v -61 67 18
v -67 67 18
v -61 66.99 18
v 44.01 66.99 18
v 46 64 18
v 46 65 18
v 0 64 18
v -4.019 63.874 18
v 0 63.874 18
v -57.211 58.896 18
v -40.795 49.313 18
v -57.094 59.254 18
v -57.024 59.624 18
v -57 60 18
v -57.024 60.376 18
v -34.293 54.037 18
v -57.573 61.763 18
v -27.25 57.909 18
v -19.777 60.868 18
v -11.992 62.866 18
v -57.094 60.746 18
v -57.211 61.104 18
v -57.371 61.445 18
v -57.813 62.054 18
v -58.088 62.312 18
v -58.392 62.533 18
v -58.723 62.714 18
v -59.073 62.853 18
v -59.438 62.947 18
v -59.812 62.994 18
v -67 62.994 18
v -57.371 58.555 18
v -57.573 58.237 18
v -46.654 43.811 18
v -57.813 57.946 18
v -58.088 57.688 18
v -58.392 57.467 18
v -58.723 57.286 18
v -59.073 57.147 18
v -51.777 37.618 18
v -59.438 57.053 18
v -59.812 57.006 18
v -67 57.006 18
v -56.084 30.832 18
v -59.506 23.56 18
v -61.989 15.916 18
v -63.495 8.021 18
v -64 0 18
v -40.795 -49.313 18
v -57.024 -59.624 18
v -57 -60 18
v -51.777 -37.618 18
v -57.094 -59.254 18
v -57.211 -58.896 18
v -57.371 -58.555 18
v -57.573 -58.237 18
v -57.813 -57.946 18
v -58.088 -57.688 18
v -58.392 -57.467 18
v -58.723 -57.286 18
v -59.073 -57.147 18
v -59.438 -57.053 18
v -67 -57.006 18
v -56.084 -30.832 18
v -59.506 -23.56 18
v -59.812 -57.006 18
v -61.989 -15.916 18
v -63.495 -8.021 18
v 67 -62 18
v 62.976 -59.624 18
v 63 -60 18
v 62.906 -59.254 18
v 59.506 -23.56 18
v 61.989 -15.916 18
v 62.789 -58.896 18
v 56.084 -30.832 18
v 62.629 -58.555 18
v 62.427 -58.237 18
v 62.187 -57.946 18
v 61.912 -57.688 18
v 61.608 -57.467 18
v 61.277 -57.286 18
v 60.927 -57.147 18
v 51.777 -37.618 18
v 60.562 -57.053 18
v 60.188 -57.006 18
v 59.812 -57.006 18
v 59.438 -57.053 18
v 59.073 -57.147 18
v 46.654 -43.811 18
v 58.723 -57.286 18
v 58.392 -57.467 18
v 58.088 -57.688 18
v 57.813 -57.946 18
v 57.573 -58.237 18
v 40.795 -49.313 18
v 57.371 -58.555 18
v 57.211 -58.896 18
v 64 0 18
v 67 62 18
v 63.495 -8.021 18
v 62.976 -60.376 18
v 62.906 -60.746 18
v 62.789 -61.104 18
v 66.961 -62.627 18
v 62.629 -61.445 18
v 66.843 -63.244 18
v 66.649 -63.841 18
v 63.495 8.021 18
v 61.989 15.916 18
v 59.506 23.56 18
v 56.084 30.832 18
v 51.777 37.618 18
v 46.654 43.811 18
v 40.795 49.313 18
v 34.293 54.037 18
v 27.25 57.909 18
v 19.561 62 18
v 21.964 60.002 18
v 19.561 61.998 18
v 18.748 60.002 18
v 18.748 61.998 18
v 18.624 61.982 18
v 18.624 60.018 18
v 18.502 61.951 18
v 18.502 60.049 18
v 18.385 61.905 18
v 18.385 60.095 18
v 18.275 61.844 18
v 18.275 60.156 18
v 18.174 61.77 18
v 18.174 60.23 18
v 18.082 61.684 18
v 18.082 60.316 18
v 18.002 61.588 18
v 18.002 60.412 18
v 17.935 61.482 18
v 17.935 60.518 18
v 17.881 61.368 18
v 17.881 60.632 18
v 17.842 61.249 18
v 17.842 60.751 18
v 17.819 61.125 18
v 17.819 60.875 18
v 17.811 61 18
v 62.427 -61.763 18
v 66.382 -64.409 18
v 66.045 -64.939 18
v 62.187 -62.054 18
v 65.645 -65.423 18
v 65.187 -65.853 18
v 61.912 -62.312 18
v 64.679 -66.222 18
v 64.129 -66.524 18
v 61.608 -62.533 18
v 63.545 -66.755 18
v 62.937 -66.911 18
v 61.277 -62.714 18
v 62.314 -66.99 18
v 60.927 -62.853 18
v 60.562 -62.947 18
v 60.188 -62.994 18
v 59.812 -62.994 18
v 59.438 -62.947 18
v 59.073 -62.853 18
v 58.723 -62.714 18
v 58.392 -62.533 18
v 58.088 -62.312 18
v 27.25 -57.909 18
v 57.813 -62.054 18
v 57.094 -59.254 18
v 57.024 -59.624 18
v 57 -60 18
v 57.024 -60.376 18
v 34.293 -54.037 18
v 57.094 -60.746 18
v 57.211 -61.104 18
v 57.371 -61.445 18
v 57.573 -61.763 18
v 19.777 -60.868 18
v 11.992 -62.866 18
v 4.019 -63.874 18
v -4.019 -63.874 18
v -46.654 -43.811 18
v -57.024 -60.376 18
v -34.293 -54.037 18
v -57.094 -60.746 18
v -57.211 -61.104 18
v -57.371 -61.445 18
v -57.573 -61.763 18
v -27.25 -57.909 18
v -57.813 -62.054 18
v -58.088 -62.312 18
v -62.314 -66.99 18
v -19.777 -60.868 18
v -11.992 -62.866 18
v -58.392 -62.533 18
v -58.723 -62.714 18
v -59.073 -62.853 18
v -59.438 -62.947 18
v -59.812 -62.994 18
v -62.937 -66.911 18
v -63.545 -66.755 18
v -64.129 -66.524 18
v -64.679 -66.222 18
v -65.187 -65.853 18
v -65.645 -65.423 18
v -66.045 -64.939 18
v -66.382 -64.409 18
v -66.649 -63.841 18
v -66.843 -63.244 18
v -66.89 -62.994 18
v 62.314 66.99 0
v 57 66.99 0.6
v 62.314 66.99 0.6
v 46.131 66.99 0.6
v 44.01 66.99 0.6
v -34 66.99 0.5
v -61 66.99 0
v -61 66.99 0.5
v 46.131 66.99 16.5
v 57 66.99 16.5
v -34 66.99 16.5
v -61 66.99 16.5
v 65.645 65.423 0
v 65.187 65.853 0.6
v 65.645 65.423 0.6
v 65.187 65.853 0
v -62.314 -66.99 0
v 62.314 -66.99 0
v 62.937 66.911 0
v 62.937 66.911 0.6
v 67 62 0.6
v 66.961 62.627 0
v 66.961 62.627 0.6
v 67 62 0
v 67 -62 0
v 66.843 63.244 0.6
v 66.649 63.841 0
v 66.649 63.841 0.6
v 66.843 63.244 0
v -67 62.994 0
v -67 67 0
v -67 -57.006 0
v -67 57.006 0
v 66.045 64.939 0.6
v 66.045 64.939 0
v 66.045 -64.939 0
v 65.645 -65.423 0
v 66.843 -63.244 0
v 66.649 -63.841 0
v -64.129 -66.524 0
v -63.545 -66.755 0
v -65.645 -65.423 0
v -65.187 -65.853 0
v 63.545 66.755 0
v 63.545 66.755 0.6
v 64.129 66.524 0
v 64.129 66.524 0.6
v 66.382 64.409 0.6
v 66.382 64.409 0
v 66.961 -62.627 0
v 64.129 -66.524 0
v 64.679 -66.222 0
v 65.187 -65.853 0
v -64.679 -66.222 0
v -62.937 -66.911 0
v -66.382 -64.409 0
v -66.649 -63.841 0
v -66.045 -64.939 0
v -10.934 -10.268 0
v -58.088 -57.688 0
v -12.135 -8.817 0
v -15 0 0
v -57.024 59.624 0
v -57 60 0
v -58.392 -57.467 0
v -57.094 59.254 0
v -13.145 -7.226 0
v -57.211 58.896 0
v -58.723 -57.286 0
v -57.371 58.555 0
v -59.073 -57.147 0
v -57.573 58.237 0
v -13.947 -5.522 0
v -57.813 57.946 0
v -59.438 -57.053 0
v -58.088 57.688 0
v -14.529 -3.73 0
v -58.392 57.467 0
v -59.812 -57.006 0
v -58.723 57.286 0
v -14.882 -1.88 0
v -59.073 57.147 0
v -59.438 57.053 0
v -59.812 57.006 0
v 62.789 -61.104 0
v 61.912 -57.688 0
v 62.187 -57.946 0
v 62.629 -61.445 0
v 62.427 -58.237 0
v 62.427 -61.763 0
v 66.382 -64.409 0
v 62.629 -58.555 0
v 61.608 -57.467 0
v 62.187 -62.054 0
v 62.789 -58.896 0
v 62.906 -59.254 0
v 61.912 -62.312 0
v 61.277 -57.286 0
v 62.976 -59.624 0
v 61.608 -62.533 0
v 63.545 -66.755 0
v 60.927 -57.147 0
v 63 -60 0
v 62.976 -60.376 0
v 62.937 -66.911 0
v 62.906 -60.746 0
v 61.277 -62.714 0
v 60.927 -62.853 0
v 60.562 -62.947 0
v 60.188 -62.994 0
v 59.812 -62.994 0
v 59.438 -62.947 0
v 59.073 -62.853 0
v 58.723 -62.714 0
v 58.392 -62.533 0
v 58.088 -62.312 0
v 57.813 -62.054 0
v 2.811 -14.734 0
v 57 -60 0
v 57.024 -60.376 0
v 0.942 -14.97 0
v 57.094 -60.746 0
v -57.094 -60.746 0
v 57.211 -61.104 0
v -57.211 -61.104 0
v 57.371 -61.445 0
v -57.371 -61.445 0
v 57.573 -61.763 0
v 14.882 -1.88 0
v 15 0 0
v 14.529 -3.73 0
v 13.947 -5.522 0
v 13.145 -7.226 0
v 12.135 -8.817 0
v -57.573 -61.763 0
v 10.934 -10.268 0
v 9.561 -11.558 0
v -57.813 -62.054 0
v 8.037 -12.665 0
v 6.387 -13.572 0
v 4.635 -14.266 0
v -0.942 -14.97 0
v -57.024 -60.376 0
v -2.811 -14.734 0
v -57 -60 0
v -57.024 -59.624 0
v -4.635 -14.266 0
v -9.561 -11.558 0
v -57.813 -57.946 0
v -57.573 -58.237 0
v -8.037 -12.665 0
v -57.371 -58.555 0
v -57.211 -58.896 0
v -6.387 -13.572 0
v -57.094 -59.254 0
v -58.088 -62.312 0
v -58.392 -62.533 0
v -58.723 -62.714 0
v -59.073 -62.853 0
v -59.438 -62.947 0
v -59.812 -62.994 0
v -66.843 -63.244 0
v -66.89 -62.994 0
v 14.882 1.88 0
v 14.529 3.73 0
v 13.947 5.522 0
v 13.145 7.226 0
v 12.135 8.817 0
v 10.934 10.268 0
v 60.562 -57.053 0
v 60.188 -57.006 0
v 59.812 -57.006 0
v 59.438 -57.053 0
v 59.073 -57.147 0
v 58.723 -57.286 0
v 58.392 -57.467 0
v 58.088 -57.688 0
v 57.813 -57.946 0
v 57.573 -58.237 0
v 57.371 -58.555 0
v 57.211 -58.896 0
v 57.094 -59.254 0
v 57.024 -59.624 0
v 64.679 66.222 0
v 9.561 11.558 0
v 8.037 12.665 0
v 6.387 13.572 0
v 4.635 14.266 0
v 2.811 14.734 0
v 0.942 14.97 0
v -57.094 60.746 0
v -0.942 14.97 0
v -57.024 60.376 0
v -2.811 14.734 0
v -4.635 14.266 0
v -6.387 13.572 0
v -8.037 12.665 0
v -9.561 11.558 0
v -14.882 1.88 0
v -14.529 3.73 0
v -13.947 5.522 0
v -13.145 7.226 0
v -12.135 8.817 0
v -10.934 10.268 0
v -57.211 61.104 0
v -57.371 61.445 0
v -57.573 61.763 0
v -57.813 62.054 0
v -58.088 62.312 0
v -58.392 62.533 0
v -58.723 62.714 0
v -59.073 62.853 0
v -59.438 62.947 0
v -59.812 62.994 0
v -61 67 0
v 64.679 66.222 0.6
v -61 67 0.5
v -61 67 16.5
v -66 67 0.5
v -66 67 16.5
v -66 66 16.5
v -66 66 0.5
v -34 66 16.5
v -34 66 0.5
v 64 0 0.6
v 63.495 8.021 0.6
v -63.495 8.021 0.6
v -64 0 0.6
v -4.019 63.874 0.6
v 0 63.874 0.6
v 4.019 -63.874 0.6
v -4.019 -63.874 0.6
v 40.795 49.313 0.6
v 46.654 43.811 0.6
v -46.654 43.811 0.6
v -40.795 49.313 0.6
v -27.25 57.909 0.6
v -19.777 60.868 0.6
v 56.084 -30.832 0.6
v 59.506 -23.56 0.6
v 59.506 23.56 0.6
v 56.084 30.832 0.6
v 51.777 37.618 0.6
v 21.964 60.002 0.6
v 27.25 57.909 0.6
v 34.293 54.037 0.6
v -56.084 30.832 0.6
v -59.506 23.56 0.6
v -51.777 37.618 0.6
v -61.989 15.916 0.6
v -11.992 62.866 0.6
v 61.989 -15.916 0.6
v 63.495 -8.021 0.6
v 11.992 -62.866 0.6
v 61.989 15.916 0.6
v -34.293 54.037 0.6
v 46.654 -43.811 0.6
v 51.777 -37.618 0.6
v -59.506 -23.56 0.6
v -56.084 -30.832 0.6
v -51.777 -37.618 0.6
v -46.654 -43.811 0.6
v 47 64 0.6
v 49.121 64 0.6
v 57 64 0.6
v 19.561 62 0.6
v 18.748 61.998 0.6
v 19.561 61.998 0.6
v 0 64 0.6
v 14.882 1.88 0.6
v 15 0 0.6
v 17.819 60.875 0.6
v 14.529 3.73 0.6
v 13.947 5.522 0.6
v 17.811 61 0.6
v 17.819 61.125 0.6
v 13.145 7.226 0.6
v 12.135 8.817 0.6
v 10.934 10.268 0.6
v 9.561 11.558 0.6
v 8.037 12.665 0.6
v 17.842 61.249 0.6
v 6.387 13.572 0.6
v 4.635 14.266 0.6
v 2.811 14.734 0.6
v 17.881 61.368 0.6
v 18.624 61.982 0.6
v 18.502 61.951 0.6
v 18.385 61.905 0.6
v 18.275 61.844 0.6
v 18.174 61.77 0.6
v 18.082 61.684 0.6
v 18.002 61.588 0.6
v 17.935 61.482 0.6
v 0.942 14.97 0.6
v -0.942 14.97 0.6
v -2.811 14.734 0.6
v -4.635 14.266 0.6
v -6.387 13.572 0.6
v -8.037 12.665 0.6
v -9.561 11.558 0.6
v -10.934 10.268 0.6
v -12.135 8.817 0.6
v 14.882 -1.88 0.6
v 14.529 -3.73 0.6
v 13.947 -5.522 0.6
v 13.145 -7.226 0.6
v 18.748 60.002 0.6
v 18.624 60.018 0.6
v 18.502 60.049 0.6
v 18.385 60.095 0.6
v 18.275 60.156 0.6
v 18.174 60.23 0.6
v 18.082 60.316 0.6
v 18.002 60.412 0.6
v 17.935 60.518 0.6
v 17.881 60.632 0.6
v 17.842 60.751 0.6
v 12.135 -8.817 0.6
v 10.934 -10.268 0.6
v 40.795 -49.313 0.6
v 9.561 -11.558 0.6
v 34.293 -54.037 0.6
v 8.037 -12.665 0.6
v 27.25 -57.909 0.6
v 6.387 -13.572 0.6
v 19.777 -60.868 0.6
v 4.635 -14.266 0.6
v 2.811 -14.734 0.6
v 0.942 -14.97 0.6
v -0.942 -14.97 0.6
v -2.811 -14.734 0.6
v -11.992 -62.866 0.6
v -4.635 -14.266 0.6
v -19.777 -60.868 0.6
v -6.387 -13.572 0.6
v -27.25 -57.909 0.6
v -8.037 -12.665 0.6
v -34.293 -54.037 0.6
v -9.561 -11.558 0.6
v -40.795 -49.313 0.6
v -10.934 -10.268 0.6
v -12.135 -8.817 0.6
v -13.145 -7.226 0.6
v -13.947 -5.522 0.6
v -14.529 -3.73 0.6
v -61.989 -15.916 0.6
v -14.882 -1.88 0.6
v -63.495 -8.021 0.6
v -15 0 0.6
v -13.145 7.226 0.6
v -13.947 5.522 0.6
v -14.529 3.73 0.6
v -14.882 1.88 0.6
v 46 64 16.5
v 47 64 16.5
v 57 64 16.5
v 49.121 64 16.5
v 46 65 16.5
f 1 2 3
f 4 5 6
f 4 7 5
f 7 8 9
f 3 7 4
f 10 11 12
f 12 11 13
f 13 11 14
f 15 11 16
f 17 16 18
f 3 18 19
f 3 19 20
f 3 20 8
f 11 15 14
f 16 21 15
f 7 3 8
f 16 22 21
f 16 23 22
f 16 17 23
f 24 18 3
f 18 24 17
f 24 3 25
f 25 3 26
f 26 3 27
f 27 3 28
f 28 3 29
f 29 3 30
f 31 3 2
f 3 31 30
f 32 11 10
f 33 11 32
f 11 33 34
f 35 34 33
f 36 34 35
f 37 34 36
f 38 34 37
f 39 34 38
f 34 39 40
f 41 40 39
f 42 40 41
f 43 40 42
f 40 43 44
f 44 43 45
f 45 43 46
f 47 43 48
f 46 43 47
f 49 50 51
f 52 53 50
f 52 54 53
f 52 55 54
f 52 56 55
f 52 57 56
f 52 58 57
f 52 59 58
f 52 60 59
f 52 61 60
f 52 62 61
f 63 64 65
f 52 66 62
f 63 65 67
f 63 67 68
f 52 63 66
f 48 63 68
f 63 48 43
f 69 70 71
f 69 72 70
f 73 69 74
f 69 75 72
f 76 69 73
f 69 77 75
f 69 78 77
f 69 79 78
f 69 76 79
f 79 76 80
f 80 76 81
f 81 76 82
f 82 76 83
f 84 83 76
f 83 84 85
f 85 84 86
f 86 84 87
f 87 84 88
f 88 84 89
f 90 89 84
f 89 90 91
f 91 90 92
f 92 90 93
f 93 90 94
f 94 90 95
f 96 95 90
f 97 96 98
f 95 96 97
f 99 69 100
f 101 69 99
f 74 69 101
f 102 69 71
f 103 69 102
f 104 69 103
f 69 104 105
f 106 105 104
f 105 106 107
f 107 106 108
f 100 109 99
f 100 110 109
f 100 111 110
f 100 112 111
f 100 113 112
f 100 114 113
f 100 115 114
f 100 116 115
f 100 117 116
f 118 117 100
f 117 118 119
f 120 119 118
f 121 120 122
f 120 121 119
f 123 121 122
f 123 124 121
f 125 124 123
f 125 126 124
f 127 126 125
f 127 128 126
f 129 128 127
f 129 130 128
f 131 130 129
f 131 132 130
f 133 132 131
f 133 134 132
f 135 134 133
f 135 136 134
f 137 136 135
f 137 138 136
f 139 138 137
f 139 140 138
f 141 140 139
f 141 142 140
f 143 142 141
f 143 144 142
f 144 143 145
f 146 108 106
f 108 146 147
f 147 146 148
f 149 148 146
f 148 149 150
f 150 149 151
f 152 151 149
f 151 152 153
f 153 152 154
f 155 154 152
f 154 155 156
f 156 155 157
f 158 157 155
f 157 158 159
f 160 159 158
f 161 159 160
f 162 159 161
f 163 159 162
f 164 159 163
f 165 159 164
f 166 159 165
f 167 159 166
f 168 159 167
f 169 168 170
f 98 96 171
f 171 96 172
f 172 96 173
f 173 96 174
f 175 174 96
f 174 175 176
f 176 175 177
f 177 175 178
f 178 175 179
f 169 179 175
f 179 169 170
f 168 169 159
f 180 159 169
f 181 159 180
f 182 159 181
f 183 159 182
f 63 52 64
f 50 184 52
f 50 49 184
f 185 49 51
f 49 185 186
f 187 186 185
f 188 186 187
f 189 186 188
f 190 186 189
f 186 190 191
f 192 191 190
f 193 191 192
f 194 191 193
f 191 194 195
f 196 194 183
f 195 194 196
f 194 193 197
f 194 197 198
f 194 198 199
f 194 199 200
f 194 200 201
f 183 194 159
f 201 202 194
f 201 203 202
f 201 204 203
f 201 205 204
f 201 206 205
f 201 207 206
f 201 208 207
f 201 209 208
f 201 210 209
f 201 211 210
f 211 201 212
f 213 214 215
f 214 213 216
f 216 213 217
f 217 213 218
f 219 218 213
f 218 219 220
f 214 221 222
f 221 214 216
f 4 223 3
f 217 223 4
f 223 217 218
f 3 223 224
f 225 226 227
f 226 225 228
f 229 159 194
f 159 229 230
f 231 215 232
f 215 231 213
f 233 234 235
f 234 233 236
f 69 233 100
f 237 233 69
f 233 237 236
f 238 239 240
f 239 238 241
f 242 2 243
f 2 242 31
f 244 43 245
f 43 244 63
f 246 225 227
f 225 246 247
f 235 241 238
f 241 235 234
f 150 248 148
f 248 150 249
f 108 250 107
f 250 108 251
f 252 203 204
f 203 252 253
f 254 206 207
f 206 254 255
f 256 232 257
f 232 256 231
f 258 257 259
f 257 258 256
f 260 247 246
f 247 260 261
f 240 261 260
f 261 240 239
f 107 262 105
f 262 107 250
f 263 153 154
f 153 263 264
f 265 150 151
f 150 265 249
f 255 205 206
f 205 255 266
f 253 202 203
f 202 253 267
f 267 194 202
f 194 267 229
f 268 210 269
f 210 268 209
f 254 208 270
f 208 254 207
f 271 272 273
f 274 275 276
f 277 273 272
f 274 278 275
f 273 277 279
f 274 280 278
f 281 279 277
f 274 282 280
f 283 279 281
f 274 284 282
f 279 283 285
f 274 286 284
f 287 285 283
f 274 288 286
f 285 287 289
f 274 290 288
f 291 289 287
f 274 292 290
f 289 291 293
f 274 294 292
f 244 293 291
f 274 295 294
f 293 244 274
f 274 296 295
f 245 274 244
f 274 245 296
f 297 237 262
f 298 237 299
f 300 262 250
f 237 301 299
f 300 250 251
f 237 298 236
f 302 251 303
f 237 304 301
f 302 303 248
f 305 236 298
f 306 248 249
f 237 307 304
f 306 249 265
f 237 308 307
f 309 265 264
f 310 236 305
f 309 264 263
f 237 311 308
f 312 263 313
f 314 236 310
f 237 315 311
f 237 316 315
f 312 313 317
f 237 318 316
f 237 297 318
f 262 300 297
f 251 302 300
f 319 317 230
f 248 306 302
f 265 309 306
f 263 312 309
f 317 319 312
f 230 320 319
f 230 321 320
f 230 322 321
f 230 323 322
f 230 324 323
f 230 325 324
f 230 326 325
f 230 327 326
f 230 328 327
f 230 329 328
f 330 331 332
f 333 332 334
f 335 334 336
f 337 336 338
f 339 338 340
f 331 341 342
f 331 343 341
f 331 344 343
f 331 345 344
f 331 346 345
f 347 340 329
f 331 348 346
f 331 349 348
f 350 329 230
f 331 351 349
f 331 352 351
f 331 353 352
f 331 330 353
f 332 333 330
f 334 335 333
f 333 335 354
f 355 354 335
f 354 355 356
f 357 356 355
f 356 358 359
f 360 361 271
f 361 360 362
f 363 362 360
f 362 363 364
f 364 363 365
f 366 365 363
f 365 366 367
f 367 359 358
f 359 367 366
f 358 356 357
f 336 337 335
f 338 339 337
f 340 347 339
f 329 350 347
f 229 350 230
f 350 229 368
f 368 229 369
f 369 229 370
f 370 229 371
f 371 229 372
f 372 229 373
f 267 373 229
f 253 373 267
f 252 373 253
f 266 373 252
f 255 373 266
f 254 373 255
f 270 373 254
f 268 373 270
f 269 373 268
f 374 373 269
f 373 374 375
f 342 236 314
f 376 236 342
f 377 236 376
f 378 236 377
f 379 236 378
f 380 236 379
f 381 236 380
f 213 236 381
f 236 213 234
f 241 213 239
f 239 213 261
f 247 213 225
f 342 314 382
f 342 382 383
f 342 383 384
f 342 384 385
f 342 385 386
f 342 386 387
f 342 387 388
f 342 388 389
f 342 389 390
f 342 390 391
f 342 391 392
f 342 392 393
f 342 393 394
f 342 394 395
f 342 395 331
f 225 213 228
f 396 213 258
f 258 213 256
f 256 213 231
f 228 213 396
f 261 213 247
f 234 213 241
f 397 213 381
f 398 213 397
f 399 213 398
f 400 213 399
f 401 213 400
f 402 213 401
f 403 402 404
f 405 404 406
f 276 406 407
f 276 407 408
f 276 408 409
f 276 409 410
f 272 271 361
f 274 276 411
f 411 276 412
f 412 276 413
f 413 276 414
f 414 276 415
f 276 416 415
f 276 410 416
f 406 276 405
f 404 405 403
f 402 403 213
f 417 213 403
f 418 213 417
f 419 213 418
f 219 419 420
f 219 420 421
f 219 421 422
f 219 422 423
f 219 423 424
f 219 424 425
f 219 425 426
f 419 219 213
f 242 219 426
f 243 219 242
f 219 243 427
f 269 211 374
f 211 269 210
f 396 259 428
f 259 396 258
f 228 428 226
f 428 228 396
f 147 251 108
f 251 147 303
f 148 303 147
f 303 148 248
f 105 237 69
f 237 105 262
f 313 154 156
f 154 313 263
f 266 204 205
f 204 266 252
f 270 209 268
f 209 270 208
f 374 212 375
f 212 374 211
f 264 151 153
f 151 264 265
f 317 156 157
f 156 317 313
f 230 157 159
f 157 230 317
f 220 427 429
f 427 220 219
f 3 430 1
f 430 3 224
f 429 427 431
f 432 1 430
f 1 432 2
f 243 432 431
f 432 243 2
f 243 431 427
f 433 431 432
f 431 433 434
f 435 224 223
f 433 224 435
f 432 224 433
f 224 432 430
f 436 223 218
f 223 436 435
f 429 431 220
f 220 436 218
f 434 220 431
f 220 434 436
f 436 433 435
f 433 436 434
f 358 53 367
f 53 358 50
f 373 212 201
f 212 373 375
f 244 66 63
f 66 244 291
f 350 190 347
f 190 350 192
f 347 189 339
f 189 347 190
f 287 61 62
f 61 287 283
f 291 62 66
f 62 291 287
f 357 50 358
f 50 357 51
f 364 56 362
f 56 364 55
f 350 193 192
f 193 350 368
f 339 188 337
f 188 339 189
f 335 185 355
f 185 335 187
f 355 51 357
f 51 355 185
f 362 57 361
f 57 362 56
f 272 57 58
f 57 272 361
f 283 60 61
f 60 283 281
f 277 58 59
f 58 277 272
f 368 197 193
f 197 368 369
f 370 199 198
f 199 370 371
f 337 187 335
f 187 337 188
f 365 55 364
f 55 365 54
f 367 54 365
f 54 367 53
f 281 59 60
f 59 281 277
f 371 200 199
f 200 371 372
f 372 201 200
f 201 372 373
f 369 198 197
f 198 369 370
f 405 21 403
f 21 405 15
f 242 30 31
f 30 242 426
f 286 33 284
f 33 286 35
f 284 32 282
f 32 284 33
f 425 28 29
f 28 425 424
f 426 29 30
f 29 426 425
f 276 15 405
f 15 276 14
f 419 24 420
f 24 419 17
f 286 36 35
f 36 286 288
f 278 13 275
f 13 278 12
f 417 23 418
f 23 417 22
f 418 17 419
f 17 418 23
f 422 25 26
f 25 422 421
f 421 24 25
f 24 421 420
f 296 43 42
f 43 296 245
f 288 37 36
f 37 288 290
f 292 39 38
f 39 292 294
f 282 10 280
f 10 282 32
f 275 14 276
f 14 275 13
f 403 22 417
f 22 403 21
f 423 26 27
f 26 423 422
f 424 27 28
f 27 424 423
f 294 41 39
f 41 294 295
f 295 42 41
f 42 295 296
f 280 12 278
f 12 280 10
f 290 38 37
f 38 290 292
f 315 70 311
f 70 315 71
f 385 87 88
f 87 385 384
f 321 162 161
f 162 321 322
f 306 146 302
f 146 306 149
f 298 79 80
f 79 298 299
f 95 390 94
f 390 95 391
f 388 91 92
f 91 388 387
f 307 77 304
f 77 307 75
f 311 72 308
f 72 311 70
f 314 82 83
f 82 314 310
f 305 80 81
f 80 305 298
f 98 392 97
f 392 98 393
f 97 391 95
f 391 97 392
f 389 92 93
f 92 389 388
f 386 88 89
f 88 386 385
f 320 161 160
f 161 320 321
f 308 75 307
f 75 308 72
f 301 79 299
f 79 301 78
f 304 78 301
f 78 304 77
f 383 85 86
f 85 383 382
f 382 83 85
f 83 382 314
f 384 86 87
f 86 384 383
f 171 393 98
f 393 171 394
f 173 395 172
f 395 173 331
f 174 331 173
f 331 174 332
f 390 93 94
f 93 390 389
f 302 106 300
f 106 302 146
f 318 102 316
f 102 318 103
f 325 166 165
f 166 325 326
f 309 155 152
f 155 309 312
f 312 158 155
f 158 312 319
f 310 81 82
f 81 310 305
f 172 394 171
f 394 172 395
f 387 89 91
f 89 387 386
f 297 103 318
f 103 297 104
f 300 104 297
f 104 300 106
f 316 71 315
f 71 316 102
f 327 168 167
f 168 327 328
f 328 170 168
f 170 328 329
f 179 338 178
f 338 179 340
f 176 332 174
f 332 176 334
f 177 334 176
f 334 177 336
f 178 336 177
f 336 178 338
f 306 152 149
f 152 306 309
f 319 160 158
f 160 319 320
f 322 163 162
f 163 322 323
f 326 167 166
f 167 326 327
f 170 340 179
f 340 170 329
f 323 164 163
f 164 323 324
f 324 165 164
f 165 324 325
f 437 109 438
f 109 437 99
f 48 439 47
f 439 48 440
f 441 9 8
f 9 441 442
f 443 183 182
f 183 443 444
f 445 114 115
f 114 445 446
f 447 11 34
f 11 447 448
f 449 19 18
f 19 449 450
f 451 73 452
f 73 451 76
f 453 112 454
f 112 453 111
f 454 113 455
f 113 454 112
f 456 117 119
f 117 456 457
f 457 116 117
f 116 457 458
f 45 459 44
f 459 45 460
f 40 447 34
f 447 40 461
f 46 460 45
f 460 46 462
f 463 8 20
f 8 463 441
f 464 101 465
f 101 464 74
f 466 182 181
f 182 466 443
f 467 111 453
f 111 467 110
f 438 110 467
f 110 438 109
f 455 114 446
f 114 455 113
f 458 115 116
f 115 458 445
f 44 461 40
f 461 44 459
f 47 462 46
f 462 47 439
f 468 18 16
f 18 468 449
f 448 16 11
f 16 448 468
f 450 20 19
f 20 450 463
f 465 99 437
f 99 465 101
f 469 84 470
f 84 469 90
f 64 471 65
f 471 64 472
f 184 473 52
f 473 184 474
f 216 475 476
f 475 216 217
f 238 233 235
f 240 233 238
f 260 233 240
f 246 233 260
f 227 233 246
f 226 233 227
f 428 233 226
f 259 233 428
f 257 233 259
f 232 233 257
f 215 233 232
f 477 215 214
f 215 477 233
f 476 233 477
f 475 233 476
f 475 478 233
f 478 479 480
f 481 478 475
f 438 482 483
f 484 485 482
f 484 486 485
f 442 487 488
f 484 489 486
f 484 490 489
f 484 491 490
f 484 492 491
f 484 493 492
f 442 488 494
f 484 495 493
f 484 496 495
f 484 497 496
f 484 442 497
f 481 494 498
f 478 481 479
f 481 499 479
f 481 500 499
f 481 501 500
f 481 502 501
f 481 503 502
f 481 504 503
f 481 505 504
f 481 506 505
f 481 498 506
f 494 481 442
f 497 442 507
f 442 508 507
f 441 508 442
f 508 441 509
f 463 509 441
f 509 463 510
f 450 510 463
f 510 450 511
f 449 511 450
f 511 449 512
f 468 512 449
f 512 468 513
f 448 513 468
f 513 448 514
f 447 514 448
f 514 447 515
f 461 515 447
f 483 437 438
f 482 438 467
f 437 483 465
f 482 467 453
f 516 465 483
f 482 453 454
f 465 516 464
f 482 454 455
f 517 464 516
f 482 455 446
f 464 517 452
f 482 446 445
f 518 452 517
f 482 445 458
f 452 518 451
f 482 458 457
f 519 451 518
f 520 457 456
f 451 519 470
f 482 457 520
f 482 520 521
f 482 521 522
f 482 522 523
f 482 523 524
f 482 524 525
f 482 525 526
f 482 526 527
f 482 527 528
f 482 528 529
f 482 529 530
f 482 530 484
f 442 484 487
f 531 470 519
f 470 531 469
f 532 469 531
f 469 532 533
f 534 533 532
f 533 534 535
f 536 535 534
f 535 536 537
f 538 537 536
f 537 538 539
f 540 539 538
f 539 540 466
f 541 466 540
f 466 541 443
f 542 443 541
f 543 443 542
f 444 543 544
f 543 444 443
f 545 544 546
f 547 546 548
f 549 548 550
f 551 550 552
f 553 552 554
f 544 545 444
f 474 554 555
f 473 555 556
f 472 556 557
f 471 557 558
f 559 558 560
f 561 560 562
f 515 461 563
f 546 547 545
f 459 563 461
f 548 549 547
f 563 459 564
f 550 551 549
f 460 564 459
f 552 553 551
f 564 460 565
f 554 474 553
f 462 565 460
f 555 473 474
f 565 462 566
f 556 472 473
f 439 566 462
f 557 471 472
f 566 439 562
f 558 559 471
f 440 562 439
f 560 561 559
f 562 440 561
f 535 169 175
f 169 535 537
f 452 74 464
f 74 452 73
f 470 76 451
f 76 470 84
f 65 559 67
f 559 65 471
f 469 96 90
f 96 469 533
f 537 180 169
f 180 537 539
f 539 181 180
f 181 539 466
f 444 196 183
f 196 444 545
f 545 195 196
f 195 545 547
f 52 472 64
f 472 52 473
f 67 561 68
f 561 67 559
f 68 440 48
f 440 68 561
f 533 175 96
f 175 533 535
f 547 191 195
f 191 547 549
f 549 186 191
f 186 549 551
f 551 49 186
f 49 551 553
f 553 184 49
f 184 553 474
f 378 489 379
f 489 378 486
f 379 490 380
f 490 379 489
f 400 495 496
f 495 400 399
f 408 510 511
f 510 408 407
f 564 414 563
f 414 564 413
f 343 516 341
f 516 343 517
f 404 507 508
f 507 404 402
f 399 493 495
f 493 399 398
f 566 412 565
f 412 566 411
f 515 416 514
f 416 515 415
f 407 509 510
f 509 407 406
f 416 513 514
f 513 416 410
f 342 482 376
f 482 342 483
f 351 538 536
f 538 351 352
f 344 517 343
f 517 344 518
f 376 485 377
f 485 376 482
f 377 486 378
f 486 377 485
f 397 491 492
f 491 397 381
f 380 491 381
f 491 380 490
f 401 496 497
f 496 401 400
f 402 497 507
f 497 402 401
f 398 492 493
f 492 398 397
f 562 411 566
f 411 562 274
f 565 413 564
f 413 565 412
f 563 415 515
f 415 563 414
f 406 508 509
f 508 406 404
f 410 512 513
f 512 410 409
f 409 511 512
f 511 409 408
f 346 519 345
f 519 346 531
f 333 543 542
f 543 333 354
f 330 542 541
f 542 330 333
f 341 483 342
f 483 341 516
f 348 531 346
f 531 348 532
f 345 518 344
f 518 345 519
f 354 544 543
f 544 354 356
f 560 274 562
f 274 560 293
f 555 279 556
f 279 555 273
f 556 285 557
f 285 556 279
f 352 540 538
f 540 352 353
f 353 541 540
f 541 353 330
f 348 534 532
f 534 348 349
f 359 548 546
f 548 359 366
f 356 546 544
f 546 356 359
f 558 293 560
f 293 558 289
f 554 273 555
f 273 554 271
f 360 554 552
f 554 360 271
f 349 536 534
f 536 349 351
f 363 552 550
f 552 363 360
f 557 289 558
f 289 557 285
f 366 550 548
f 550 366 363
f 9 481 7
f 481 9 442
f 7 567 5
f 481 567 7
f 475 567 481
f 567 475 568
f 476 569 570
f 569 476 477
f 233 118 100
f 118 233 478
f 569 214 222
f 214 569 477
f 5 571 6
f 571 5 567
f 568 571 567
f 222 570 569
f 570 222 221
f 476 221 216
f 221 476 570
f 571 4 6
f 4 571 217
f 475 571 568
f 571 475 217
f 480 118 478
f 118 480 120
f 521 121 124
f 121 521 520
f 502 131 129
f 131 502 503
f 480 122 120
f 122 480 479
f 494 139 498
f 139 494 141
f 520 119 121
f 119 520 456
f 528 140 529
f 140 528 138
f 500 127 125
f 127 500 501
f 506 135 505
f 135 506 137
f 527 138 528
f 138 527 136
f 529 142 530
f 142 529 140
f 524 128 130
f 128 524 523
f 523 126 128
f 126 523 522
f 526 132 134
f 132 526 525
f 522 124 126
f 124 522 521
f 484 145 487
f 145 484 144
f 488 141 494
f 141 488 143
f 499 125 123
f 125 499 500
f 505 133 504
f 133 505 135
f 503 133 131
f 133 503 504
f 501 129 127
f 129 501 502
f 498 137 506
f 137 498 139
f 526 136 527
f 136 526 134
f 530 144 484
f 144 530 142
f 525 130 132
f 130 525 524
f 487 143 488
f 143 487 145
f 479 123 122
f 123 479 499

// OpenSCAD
$fn = 50;


union() {
	difference() {
		union() {
			translate(v = [0, 0, 0]) {
				rotate(a = [0, 0, 0]) {
					hull() {
						translate(v = [-62.0000000000, 62.0000000000, 0]) {
							rotate(a = [0, 0, 0]) {
								translate(v = [0, 0, 0]) {
									rotate(a = [0, 0, 0]) {
										cylinder(h = 18, r = 5);
									}
								}
							}
						}
						translate(v = [62.0000000000, 62.0000000000, 0]) {
							rotate(a = [0, 0, 0]) {
								translate(v = [0, 0, 0]) {
									rotate(a = [0, 0, 0]) {
										cylinder(h = 18, r = 5);
									}
								}
							}
						}
						translate(v = [-62.0000000000, -62.0000000000, 0]) {
							rotate(a = [0, 0, 0]) {
								translate(v = [0, 0, 0]) {
									rotate(a = [0, 0, 0]) {
										cylinder(h = 18, r = 5);
									}
								}
							}
						}
						translate(v = [62.0000000000, -62.0000000000, 0]) {
							rotate(a = [0, 0, 0]) {
								translate(v = [0, 0, 0]) {
									rotate(a = [0, 0, 0]) {
										cylinder(h = 18, r = 5);
									}
								}
							}
						}
					}
				}
			}
			translate(v = [-67.0000000000, 61.0000000000, 0]) {
				rotate(a = [0, 0, 0]) {
					cube(size = [6, 6, 18]);
				}
			}
		}
		union() {
			#translate(v = [-66.0000000000, 66.0000000000, 0.5000000000]) {
				rotate(a = [0, 0, 0]) {
					cube(size = [32, 1, 16]);
				}
			}
			translate(v = [-67.5000000000, -60.0000000000, -125]) {
				rotate(a = [0, 0, 0]) {
					hull() {
						translate(v = [7.5000000000, 0, 0]) {
							rotate(a = [0, 0, 0]) {
								translate(v = [0, 0, 0]) {
									rotate(a = [0, 0, 0]) {
										cylinder(h = 250, r = 3.0000000000);
									}
								}
							}
						}
						translate(v = [-7.5000000000, 0, 0]) {
							rotate(a = [0, 0, 0]) {
								translate(v = [0, 0, 0]) {
									rotate(a = [0, 0, 0]) {
										cylinder(h = 250, r = 3.0000000000);
									}
								}
							}
						}
					}
				}
			}
			translate(v = [-67.5000000000, 60.0000000000, -125]) {
				rotate(a = [0, 0, 0]) {
					hull() {
						translate(v = [7.5000000000, 0, 0]) {
							rotate(a = [0, 0, 0]) {
								translate(v = [0, 0, 0]) {
									rotate(a = [0, 0, 0]) {
										cylinder(h = 250, r = 3.0000000000);
									}
								}
							}
						}
						translate(v = [-7.5000000000, 0, 0]) {
							rotate(a = [0, 0, 0]) {
								translate(v = [0, 0, 0]) {
									rotate(a = [0, 0, 0]) {
										cylinder(h = 250, r = 3.0000000000);
									}
								}
							}
						}
					}
				}
			}
			translate(v = [60.0000000000, -60.0000000000, -125.0000000000]) {
				rotate(a = [0, 0, 0]) {
					cylinder(h = 250, r = 3.0000000000);
				}
			}
			translate(v = [0, 0, 0.6000000000]) {
				rotate(a = [0, 0, 0]) {
					cylinder(h = 20.4000000000, r = 64.0000000000);
				}
			}
			translate(v = [0, 0, -9.0000000000]) {
				rotate(a = [0, 0, 0]) {
					cylinder(h = 18, r = 15.0000000000);
				}
			}
			translate(v = [0.0000000000, 62.0000000000, 0.6000000000]) {
				rotate(a = [0, 0, 0]) {
					cube(size = [67.0000000000, 2, 20.4000000000]);
				}
			}
			translate(v = [57.0000000000, 62.0000000000, 0.6000000000]) {
				rotate(a = [0, 0, 0]) {
					cube(size = [10, 5, 20.4000000000]);
				}
			}
			translate(v = [46.0000000000, 62.0000000000, 16.5000000000]) {
				rotate(a = [0, 0, 0]) {
					cube(size = [21, 5, 1.5000000000]);
				}
			}
			translate(v = [43.2500000000, 67.7500000000, 0.6000000000]) {
				rotate(a = [0, 0, -45]) {
					cube(size = [7.5000000000, 1.5000000000, 20.4000000000]);
				}
			}
			translate(v = [12.0610000000, 60.0000000000, 0.6000000000]) {
				rotate(a = [0, 0, 0]) {
					cube(size = [7.5000000000, 2, 17.4000000000]);
				}
			}
		}
	}
	union() {
		translate(v = [21.3110000000, 61.0000000000, 0]) {
			rotate(a = [0, 0, 0]) {
				hull() {
					translate(v = [2.5000000000, 0, 0]) {
						rotate(a = [0, 0, 0]) {
							#translate(v = [0, 0, 0]) {
								rotate(a = [0, 0, 0]) {
									cylinder(h = 18, r = 1.0000000000);
								}
							}
						}
					}
					translate(v = [-2.5000000000, 0, 0]) {
						rotate(a = [0, 0, 0]) {
							#translate(v = [0, 0, 0]) {
								rotate(a = [0, 0, 0]) {
									cylinder(h = 18, r = 1.0000000000);
								}
							}
						}
					}
				}
			}
		}
	}
}
